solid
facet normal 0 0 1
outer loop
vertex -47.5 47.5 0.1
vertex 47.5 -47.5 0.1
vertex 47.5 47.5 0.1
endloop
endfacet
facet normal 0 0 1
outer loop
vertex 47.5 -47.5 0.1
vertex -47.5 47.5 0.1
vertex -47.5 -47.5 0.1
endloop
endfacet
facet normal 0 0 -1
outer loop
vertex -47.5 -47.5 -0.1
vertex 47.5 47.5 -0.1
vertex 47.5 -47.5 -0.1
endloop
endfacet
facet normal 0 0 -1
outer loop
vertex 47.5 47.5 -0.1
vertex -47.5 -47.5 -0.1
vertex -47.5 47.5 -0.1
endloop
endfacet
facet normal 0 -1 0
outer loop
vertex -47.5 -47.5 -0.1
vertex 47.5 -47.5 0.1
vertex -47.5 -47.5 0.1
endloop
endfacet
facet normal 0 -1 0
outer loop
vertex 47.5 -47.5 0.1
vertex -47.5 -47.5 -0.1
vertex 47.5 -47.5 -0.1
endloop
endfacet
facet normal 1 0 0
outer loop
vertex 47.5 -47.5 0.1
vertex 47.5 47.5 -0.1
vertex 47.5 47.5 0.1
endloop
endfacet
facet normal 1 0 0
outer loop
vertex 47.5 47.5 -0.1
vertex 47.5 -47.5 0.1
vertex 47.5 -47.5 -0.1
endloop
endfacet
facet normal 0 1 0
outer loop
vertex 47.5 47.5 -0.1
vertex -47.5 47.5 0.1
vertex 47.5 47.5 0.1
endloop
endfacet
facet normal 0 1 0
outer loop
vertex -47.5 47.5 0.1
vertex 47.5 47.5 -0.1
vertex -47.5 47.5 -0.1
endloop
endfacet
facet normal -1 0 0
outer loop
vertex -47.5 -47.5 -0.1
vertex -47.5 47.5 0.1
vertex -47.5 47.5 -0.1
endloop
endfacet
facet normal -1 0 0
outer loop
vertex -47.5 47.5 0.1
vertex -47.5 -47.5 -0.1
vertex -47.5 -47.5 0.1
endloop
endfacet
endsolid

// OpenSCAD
// Simple cube object with a given dimension   

cube([95,95,0.2],center=true);
